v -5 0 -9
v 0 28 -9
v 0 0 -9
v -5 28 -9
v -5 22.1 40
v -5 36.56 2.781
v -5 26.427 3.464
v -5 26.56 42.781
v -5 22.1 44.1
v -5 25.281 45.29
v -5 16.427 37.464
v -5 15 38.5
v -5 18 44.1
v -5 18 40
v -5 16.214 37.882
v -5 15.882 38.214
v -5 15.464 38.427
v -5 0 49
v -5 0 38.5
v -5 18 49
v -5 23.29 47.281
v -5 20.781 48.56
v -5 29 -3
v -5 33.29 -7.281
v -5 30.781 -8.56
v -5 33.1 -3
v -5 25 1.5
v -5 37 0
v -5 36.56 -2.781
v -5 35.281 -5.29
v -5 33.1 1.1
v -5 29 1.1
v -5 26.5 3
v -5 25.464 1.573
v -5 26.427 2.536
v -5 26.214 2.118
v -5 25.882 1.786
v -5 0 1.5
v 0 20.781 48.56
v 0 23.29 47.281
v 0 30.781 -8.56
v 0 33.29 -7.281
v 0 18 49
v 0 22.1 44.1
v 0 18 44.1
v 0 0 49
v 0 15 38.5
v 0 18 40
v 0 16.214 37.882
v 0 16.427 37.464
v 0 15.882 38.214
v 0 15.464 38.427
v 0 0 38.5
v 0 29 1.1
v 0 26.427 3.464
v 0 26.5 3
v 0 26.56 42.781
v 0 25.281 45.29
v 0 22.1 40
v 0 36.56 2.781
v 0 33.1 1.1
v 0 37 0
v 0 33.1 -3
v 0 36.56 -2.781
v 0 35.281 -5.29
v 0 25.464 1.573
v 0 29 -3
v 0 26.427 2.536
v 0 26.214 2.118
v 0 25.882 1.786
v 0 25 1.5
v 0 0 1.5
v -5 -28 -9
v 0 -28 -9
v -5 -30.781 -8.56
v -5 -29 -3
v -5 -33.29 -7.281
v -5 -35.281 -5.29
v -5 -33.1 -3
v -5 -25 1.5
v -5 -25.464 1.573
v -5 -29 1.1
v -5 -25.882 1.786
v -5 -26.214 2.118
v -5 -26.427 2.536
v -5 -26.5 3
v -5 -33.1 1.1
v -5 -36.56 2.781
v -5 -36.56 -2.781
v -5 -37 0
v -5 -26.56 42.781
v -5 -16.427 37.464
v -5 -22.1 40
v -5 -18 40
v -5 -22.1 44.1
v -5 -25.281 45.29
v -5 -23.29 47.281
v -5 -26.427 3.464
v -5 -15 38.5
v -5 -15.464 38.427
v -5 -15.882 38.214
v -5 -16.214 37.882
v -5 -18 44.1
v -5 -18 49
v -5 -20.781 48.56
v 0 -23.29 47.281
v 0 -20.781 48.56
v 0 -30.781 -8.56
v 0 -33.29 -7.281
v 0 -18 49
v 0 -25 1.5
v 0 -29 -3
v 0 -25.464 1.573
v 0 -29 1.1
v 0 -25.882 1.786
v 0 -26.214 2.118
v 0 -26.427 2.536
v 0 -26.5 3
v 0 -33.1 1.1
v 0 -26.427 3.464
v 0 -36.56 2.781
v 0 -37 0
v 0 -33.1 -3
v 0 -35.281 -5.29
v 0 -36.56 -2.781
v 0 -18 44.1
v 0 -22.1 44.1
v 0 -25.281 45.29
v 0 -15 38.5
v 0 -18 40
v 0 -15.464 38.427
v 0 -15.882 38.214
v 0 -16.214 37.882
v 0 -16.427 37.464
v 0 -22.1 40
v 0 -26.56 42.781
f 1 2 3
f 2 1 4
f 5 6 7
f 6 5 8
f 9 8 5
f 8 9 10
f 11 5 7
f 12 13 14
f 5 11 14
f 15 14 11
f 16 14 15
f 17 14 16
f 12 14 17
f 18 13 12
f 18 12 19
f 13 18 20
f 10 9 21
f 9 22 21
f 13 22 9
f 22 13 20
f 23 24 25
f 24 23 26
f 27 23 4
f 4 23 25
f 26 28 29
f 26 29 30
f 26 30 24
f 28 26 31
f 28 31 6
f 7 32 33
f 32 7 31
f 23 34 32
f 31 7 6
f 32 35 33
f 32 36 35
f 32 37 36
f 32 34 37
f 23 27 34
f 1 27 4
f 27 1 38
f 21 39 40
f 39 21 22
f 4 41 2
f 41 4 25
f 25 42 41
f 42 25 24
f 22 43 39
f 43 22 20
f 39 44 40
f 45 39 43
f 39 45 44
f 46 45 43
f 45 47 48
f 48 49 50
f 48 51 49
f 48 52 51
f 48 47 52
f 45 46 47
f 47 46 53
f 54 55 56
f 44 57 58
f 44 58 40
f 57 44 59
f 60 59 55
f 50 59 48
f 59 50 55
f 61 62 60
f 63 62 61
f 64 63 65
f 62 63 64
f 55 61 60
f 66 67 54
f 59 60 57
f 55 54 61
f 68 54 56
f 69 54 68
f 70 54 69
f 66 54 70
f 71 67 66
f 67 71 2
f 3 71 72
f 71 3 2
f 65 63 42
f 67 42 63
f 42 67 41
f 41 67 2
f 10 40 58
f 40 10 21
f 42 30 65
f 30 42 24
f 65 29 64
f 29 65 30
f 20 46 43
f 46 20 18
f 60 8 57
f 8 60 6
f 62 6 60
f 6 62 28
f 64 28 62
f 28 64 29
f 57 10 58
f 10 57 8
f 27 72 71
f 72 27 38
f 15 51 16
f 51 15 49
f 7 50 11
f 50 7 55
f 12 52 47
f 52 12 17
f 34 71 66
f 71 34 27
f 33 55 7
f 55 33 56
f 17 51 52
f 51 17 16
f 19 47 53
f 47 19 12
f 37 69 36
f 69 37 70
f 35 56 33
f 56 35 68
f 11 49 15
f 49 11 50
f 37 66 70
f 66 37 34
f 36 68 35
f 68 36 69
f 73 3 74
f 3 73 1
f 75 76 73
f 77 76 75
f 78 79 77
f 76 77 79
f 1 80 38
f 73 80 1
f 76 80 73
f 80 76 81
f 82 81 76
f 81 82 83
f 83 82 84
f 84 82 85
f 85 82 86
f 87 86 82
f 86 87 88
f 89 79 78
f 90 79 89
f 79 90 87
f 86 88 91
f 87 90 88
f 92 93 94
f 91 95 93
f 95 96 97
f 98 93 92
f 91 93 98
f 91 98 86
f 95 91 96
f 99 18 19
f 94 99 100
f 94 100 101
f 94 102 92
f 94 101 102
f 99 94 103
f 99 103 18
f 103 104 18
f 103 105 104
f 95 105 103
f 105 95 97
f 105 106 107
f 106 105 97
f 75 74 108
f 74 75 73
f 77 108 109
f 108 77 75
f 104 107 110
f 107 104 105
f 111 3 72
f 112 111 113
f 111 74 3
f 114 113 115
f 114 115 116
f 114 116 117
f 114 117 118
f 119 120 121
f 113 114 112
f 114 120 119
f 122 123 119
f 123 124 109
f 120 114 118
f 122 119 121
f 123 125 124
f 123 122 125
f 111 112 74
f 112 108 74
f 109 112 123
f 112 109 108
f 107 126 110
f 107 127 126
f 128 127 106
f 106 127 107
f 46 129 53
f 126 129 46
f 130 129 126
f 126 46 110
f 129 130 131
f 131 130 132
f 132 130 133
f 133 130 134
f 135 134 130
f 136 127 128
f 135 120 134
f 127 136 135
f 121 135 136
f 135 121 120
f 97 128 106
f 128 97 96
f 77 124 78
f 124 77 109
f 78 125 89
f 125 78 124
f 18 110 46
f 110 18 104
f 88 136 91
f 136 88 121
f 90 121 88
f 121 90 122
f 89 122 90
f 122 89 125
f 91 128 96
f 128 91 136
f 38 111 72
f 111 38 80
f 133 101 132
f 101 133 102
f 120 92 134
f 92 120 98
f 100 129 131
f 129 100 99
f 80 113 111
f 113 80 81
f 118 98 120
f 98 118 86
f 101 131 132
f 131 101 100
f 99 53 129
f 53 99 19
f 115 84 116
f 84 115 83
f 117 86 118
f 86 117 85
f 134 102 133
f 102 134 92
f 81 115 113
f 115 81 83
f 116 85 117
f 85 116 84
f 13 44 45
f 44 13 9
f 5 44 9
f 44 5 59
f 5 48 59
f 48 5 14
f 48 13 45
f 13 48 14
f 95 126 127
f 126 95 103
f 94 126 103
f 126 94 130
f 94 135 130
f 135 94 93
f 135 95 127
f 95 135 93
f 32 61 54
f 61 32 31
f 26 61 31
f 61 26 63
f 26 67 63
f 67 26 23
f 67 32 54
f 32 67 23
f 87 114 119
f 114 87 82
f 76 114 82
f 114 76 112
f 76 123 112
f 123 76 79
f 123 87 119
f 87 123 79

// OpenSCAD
t = 5;

rx = 100;
rdy = 4.1;
roy = 36;
royl = 58;

p0 = [0,0,18];
p1 = [0,28,18];
p2 = [40,18,18];
p3 = [40,0,18];

k = 12;


module rails(oz=2) {
    
  translate([-rx/2,roy/2,oz]) cube([rx,rdy,rdy]);
  mirror([0,1,0]){
    translate([-rx/2,roy/2,oz]) cube([rx,rdy,rdy]);
  }
    
}

module railsLow(oz=2) {
    
  translate([-rx/2,royl/2,oz]) cube([rx,rdy,rdy]);
  mirror([0,1,0]){
    translate([-rx/2,royl/2,oz]) cube([rx,rdy,rdy]);
  }
    
}


module span() {
difference(){
  hull(){
    translate([p0[0],p0[1],0])cylinder(r=p0[2]/2, h=t, $fn=20);
    translate([p1[0],p1[1],0])cylinder(r=p1[2]/2, h=t, $fn=20);
    translate([p2[0],p2[1],0])cylinder(r=p2[2]/2, h=t, $fn=20);
    translate([p3[0],p3[1],0])cylinder(r=p3[2]/2, h=t, $fn=20);
      
  }
  
  hull(){
    translate([p0[0]+3,p0[1]-3,-1])cylinder(r=p0[2]/k, h=2*t, $fn=20);
    translate([p1[0]+3,p1[1]-3,-1])cylinder(r=p1[2]/k, h=2*t, $fn=20);
    translate([p2[0]-3,p2[1]-3,-1])cylinder(r=p2[2]/k, h=2*t, $fn=20);
    translate([p3[0]-3,p3[1]-3,-1])cylinder(r=p3[2]/k, h=2*t, $fn=20);
  }

  translate([-120/2,-40,-1])cube([120,40,10]);
}
}


difference() {
rotate([0,-90,0])
union(){
  span();
  mirror([0,1,0])span();
};

translate([0,0,38])rails();
translate([0,0,-5])railsLow();

}
